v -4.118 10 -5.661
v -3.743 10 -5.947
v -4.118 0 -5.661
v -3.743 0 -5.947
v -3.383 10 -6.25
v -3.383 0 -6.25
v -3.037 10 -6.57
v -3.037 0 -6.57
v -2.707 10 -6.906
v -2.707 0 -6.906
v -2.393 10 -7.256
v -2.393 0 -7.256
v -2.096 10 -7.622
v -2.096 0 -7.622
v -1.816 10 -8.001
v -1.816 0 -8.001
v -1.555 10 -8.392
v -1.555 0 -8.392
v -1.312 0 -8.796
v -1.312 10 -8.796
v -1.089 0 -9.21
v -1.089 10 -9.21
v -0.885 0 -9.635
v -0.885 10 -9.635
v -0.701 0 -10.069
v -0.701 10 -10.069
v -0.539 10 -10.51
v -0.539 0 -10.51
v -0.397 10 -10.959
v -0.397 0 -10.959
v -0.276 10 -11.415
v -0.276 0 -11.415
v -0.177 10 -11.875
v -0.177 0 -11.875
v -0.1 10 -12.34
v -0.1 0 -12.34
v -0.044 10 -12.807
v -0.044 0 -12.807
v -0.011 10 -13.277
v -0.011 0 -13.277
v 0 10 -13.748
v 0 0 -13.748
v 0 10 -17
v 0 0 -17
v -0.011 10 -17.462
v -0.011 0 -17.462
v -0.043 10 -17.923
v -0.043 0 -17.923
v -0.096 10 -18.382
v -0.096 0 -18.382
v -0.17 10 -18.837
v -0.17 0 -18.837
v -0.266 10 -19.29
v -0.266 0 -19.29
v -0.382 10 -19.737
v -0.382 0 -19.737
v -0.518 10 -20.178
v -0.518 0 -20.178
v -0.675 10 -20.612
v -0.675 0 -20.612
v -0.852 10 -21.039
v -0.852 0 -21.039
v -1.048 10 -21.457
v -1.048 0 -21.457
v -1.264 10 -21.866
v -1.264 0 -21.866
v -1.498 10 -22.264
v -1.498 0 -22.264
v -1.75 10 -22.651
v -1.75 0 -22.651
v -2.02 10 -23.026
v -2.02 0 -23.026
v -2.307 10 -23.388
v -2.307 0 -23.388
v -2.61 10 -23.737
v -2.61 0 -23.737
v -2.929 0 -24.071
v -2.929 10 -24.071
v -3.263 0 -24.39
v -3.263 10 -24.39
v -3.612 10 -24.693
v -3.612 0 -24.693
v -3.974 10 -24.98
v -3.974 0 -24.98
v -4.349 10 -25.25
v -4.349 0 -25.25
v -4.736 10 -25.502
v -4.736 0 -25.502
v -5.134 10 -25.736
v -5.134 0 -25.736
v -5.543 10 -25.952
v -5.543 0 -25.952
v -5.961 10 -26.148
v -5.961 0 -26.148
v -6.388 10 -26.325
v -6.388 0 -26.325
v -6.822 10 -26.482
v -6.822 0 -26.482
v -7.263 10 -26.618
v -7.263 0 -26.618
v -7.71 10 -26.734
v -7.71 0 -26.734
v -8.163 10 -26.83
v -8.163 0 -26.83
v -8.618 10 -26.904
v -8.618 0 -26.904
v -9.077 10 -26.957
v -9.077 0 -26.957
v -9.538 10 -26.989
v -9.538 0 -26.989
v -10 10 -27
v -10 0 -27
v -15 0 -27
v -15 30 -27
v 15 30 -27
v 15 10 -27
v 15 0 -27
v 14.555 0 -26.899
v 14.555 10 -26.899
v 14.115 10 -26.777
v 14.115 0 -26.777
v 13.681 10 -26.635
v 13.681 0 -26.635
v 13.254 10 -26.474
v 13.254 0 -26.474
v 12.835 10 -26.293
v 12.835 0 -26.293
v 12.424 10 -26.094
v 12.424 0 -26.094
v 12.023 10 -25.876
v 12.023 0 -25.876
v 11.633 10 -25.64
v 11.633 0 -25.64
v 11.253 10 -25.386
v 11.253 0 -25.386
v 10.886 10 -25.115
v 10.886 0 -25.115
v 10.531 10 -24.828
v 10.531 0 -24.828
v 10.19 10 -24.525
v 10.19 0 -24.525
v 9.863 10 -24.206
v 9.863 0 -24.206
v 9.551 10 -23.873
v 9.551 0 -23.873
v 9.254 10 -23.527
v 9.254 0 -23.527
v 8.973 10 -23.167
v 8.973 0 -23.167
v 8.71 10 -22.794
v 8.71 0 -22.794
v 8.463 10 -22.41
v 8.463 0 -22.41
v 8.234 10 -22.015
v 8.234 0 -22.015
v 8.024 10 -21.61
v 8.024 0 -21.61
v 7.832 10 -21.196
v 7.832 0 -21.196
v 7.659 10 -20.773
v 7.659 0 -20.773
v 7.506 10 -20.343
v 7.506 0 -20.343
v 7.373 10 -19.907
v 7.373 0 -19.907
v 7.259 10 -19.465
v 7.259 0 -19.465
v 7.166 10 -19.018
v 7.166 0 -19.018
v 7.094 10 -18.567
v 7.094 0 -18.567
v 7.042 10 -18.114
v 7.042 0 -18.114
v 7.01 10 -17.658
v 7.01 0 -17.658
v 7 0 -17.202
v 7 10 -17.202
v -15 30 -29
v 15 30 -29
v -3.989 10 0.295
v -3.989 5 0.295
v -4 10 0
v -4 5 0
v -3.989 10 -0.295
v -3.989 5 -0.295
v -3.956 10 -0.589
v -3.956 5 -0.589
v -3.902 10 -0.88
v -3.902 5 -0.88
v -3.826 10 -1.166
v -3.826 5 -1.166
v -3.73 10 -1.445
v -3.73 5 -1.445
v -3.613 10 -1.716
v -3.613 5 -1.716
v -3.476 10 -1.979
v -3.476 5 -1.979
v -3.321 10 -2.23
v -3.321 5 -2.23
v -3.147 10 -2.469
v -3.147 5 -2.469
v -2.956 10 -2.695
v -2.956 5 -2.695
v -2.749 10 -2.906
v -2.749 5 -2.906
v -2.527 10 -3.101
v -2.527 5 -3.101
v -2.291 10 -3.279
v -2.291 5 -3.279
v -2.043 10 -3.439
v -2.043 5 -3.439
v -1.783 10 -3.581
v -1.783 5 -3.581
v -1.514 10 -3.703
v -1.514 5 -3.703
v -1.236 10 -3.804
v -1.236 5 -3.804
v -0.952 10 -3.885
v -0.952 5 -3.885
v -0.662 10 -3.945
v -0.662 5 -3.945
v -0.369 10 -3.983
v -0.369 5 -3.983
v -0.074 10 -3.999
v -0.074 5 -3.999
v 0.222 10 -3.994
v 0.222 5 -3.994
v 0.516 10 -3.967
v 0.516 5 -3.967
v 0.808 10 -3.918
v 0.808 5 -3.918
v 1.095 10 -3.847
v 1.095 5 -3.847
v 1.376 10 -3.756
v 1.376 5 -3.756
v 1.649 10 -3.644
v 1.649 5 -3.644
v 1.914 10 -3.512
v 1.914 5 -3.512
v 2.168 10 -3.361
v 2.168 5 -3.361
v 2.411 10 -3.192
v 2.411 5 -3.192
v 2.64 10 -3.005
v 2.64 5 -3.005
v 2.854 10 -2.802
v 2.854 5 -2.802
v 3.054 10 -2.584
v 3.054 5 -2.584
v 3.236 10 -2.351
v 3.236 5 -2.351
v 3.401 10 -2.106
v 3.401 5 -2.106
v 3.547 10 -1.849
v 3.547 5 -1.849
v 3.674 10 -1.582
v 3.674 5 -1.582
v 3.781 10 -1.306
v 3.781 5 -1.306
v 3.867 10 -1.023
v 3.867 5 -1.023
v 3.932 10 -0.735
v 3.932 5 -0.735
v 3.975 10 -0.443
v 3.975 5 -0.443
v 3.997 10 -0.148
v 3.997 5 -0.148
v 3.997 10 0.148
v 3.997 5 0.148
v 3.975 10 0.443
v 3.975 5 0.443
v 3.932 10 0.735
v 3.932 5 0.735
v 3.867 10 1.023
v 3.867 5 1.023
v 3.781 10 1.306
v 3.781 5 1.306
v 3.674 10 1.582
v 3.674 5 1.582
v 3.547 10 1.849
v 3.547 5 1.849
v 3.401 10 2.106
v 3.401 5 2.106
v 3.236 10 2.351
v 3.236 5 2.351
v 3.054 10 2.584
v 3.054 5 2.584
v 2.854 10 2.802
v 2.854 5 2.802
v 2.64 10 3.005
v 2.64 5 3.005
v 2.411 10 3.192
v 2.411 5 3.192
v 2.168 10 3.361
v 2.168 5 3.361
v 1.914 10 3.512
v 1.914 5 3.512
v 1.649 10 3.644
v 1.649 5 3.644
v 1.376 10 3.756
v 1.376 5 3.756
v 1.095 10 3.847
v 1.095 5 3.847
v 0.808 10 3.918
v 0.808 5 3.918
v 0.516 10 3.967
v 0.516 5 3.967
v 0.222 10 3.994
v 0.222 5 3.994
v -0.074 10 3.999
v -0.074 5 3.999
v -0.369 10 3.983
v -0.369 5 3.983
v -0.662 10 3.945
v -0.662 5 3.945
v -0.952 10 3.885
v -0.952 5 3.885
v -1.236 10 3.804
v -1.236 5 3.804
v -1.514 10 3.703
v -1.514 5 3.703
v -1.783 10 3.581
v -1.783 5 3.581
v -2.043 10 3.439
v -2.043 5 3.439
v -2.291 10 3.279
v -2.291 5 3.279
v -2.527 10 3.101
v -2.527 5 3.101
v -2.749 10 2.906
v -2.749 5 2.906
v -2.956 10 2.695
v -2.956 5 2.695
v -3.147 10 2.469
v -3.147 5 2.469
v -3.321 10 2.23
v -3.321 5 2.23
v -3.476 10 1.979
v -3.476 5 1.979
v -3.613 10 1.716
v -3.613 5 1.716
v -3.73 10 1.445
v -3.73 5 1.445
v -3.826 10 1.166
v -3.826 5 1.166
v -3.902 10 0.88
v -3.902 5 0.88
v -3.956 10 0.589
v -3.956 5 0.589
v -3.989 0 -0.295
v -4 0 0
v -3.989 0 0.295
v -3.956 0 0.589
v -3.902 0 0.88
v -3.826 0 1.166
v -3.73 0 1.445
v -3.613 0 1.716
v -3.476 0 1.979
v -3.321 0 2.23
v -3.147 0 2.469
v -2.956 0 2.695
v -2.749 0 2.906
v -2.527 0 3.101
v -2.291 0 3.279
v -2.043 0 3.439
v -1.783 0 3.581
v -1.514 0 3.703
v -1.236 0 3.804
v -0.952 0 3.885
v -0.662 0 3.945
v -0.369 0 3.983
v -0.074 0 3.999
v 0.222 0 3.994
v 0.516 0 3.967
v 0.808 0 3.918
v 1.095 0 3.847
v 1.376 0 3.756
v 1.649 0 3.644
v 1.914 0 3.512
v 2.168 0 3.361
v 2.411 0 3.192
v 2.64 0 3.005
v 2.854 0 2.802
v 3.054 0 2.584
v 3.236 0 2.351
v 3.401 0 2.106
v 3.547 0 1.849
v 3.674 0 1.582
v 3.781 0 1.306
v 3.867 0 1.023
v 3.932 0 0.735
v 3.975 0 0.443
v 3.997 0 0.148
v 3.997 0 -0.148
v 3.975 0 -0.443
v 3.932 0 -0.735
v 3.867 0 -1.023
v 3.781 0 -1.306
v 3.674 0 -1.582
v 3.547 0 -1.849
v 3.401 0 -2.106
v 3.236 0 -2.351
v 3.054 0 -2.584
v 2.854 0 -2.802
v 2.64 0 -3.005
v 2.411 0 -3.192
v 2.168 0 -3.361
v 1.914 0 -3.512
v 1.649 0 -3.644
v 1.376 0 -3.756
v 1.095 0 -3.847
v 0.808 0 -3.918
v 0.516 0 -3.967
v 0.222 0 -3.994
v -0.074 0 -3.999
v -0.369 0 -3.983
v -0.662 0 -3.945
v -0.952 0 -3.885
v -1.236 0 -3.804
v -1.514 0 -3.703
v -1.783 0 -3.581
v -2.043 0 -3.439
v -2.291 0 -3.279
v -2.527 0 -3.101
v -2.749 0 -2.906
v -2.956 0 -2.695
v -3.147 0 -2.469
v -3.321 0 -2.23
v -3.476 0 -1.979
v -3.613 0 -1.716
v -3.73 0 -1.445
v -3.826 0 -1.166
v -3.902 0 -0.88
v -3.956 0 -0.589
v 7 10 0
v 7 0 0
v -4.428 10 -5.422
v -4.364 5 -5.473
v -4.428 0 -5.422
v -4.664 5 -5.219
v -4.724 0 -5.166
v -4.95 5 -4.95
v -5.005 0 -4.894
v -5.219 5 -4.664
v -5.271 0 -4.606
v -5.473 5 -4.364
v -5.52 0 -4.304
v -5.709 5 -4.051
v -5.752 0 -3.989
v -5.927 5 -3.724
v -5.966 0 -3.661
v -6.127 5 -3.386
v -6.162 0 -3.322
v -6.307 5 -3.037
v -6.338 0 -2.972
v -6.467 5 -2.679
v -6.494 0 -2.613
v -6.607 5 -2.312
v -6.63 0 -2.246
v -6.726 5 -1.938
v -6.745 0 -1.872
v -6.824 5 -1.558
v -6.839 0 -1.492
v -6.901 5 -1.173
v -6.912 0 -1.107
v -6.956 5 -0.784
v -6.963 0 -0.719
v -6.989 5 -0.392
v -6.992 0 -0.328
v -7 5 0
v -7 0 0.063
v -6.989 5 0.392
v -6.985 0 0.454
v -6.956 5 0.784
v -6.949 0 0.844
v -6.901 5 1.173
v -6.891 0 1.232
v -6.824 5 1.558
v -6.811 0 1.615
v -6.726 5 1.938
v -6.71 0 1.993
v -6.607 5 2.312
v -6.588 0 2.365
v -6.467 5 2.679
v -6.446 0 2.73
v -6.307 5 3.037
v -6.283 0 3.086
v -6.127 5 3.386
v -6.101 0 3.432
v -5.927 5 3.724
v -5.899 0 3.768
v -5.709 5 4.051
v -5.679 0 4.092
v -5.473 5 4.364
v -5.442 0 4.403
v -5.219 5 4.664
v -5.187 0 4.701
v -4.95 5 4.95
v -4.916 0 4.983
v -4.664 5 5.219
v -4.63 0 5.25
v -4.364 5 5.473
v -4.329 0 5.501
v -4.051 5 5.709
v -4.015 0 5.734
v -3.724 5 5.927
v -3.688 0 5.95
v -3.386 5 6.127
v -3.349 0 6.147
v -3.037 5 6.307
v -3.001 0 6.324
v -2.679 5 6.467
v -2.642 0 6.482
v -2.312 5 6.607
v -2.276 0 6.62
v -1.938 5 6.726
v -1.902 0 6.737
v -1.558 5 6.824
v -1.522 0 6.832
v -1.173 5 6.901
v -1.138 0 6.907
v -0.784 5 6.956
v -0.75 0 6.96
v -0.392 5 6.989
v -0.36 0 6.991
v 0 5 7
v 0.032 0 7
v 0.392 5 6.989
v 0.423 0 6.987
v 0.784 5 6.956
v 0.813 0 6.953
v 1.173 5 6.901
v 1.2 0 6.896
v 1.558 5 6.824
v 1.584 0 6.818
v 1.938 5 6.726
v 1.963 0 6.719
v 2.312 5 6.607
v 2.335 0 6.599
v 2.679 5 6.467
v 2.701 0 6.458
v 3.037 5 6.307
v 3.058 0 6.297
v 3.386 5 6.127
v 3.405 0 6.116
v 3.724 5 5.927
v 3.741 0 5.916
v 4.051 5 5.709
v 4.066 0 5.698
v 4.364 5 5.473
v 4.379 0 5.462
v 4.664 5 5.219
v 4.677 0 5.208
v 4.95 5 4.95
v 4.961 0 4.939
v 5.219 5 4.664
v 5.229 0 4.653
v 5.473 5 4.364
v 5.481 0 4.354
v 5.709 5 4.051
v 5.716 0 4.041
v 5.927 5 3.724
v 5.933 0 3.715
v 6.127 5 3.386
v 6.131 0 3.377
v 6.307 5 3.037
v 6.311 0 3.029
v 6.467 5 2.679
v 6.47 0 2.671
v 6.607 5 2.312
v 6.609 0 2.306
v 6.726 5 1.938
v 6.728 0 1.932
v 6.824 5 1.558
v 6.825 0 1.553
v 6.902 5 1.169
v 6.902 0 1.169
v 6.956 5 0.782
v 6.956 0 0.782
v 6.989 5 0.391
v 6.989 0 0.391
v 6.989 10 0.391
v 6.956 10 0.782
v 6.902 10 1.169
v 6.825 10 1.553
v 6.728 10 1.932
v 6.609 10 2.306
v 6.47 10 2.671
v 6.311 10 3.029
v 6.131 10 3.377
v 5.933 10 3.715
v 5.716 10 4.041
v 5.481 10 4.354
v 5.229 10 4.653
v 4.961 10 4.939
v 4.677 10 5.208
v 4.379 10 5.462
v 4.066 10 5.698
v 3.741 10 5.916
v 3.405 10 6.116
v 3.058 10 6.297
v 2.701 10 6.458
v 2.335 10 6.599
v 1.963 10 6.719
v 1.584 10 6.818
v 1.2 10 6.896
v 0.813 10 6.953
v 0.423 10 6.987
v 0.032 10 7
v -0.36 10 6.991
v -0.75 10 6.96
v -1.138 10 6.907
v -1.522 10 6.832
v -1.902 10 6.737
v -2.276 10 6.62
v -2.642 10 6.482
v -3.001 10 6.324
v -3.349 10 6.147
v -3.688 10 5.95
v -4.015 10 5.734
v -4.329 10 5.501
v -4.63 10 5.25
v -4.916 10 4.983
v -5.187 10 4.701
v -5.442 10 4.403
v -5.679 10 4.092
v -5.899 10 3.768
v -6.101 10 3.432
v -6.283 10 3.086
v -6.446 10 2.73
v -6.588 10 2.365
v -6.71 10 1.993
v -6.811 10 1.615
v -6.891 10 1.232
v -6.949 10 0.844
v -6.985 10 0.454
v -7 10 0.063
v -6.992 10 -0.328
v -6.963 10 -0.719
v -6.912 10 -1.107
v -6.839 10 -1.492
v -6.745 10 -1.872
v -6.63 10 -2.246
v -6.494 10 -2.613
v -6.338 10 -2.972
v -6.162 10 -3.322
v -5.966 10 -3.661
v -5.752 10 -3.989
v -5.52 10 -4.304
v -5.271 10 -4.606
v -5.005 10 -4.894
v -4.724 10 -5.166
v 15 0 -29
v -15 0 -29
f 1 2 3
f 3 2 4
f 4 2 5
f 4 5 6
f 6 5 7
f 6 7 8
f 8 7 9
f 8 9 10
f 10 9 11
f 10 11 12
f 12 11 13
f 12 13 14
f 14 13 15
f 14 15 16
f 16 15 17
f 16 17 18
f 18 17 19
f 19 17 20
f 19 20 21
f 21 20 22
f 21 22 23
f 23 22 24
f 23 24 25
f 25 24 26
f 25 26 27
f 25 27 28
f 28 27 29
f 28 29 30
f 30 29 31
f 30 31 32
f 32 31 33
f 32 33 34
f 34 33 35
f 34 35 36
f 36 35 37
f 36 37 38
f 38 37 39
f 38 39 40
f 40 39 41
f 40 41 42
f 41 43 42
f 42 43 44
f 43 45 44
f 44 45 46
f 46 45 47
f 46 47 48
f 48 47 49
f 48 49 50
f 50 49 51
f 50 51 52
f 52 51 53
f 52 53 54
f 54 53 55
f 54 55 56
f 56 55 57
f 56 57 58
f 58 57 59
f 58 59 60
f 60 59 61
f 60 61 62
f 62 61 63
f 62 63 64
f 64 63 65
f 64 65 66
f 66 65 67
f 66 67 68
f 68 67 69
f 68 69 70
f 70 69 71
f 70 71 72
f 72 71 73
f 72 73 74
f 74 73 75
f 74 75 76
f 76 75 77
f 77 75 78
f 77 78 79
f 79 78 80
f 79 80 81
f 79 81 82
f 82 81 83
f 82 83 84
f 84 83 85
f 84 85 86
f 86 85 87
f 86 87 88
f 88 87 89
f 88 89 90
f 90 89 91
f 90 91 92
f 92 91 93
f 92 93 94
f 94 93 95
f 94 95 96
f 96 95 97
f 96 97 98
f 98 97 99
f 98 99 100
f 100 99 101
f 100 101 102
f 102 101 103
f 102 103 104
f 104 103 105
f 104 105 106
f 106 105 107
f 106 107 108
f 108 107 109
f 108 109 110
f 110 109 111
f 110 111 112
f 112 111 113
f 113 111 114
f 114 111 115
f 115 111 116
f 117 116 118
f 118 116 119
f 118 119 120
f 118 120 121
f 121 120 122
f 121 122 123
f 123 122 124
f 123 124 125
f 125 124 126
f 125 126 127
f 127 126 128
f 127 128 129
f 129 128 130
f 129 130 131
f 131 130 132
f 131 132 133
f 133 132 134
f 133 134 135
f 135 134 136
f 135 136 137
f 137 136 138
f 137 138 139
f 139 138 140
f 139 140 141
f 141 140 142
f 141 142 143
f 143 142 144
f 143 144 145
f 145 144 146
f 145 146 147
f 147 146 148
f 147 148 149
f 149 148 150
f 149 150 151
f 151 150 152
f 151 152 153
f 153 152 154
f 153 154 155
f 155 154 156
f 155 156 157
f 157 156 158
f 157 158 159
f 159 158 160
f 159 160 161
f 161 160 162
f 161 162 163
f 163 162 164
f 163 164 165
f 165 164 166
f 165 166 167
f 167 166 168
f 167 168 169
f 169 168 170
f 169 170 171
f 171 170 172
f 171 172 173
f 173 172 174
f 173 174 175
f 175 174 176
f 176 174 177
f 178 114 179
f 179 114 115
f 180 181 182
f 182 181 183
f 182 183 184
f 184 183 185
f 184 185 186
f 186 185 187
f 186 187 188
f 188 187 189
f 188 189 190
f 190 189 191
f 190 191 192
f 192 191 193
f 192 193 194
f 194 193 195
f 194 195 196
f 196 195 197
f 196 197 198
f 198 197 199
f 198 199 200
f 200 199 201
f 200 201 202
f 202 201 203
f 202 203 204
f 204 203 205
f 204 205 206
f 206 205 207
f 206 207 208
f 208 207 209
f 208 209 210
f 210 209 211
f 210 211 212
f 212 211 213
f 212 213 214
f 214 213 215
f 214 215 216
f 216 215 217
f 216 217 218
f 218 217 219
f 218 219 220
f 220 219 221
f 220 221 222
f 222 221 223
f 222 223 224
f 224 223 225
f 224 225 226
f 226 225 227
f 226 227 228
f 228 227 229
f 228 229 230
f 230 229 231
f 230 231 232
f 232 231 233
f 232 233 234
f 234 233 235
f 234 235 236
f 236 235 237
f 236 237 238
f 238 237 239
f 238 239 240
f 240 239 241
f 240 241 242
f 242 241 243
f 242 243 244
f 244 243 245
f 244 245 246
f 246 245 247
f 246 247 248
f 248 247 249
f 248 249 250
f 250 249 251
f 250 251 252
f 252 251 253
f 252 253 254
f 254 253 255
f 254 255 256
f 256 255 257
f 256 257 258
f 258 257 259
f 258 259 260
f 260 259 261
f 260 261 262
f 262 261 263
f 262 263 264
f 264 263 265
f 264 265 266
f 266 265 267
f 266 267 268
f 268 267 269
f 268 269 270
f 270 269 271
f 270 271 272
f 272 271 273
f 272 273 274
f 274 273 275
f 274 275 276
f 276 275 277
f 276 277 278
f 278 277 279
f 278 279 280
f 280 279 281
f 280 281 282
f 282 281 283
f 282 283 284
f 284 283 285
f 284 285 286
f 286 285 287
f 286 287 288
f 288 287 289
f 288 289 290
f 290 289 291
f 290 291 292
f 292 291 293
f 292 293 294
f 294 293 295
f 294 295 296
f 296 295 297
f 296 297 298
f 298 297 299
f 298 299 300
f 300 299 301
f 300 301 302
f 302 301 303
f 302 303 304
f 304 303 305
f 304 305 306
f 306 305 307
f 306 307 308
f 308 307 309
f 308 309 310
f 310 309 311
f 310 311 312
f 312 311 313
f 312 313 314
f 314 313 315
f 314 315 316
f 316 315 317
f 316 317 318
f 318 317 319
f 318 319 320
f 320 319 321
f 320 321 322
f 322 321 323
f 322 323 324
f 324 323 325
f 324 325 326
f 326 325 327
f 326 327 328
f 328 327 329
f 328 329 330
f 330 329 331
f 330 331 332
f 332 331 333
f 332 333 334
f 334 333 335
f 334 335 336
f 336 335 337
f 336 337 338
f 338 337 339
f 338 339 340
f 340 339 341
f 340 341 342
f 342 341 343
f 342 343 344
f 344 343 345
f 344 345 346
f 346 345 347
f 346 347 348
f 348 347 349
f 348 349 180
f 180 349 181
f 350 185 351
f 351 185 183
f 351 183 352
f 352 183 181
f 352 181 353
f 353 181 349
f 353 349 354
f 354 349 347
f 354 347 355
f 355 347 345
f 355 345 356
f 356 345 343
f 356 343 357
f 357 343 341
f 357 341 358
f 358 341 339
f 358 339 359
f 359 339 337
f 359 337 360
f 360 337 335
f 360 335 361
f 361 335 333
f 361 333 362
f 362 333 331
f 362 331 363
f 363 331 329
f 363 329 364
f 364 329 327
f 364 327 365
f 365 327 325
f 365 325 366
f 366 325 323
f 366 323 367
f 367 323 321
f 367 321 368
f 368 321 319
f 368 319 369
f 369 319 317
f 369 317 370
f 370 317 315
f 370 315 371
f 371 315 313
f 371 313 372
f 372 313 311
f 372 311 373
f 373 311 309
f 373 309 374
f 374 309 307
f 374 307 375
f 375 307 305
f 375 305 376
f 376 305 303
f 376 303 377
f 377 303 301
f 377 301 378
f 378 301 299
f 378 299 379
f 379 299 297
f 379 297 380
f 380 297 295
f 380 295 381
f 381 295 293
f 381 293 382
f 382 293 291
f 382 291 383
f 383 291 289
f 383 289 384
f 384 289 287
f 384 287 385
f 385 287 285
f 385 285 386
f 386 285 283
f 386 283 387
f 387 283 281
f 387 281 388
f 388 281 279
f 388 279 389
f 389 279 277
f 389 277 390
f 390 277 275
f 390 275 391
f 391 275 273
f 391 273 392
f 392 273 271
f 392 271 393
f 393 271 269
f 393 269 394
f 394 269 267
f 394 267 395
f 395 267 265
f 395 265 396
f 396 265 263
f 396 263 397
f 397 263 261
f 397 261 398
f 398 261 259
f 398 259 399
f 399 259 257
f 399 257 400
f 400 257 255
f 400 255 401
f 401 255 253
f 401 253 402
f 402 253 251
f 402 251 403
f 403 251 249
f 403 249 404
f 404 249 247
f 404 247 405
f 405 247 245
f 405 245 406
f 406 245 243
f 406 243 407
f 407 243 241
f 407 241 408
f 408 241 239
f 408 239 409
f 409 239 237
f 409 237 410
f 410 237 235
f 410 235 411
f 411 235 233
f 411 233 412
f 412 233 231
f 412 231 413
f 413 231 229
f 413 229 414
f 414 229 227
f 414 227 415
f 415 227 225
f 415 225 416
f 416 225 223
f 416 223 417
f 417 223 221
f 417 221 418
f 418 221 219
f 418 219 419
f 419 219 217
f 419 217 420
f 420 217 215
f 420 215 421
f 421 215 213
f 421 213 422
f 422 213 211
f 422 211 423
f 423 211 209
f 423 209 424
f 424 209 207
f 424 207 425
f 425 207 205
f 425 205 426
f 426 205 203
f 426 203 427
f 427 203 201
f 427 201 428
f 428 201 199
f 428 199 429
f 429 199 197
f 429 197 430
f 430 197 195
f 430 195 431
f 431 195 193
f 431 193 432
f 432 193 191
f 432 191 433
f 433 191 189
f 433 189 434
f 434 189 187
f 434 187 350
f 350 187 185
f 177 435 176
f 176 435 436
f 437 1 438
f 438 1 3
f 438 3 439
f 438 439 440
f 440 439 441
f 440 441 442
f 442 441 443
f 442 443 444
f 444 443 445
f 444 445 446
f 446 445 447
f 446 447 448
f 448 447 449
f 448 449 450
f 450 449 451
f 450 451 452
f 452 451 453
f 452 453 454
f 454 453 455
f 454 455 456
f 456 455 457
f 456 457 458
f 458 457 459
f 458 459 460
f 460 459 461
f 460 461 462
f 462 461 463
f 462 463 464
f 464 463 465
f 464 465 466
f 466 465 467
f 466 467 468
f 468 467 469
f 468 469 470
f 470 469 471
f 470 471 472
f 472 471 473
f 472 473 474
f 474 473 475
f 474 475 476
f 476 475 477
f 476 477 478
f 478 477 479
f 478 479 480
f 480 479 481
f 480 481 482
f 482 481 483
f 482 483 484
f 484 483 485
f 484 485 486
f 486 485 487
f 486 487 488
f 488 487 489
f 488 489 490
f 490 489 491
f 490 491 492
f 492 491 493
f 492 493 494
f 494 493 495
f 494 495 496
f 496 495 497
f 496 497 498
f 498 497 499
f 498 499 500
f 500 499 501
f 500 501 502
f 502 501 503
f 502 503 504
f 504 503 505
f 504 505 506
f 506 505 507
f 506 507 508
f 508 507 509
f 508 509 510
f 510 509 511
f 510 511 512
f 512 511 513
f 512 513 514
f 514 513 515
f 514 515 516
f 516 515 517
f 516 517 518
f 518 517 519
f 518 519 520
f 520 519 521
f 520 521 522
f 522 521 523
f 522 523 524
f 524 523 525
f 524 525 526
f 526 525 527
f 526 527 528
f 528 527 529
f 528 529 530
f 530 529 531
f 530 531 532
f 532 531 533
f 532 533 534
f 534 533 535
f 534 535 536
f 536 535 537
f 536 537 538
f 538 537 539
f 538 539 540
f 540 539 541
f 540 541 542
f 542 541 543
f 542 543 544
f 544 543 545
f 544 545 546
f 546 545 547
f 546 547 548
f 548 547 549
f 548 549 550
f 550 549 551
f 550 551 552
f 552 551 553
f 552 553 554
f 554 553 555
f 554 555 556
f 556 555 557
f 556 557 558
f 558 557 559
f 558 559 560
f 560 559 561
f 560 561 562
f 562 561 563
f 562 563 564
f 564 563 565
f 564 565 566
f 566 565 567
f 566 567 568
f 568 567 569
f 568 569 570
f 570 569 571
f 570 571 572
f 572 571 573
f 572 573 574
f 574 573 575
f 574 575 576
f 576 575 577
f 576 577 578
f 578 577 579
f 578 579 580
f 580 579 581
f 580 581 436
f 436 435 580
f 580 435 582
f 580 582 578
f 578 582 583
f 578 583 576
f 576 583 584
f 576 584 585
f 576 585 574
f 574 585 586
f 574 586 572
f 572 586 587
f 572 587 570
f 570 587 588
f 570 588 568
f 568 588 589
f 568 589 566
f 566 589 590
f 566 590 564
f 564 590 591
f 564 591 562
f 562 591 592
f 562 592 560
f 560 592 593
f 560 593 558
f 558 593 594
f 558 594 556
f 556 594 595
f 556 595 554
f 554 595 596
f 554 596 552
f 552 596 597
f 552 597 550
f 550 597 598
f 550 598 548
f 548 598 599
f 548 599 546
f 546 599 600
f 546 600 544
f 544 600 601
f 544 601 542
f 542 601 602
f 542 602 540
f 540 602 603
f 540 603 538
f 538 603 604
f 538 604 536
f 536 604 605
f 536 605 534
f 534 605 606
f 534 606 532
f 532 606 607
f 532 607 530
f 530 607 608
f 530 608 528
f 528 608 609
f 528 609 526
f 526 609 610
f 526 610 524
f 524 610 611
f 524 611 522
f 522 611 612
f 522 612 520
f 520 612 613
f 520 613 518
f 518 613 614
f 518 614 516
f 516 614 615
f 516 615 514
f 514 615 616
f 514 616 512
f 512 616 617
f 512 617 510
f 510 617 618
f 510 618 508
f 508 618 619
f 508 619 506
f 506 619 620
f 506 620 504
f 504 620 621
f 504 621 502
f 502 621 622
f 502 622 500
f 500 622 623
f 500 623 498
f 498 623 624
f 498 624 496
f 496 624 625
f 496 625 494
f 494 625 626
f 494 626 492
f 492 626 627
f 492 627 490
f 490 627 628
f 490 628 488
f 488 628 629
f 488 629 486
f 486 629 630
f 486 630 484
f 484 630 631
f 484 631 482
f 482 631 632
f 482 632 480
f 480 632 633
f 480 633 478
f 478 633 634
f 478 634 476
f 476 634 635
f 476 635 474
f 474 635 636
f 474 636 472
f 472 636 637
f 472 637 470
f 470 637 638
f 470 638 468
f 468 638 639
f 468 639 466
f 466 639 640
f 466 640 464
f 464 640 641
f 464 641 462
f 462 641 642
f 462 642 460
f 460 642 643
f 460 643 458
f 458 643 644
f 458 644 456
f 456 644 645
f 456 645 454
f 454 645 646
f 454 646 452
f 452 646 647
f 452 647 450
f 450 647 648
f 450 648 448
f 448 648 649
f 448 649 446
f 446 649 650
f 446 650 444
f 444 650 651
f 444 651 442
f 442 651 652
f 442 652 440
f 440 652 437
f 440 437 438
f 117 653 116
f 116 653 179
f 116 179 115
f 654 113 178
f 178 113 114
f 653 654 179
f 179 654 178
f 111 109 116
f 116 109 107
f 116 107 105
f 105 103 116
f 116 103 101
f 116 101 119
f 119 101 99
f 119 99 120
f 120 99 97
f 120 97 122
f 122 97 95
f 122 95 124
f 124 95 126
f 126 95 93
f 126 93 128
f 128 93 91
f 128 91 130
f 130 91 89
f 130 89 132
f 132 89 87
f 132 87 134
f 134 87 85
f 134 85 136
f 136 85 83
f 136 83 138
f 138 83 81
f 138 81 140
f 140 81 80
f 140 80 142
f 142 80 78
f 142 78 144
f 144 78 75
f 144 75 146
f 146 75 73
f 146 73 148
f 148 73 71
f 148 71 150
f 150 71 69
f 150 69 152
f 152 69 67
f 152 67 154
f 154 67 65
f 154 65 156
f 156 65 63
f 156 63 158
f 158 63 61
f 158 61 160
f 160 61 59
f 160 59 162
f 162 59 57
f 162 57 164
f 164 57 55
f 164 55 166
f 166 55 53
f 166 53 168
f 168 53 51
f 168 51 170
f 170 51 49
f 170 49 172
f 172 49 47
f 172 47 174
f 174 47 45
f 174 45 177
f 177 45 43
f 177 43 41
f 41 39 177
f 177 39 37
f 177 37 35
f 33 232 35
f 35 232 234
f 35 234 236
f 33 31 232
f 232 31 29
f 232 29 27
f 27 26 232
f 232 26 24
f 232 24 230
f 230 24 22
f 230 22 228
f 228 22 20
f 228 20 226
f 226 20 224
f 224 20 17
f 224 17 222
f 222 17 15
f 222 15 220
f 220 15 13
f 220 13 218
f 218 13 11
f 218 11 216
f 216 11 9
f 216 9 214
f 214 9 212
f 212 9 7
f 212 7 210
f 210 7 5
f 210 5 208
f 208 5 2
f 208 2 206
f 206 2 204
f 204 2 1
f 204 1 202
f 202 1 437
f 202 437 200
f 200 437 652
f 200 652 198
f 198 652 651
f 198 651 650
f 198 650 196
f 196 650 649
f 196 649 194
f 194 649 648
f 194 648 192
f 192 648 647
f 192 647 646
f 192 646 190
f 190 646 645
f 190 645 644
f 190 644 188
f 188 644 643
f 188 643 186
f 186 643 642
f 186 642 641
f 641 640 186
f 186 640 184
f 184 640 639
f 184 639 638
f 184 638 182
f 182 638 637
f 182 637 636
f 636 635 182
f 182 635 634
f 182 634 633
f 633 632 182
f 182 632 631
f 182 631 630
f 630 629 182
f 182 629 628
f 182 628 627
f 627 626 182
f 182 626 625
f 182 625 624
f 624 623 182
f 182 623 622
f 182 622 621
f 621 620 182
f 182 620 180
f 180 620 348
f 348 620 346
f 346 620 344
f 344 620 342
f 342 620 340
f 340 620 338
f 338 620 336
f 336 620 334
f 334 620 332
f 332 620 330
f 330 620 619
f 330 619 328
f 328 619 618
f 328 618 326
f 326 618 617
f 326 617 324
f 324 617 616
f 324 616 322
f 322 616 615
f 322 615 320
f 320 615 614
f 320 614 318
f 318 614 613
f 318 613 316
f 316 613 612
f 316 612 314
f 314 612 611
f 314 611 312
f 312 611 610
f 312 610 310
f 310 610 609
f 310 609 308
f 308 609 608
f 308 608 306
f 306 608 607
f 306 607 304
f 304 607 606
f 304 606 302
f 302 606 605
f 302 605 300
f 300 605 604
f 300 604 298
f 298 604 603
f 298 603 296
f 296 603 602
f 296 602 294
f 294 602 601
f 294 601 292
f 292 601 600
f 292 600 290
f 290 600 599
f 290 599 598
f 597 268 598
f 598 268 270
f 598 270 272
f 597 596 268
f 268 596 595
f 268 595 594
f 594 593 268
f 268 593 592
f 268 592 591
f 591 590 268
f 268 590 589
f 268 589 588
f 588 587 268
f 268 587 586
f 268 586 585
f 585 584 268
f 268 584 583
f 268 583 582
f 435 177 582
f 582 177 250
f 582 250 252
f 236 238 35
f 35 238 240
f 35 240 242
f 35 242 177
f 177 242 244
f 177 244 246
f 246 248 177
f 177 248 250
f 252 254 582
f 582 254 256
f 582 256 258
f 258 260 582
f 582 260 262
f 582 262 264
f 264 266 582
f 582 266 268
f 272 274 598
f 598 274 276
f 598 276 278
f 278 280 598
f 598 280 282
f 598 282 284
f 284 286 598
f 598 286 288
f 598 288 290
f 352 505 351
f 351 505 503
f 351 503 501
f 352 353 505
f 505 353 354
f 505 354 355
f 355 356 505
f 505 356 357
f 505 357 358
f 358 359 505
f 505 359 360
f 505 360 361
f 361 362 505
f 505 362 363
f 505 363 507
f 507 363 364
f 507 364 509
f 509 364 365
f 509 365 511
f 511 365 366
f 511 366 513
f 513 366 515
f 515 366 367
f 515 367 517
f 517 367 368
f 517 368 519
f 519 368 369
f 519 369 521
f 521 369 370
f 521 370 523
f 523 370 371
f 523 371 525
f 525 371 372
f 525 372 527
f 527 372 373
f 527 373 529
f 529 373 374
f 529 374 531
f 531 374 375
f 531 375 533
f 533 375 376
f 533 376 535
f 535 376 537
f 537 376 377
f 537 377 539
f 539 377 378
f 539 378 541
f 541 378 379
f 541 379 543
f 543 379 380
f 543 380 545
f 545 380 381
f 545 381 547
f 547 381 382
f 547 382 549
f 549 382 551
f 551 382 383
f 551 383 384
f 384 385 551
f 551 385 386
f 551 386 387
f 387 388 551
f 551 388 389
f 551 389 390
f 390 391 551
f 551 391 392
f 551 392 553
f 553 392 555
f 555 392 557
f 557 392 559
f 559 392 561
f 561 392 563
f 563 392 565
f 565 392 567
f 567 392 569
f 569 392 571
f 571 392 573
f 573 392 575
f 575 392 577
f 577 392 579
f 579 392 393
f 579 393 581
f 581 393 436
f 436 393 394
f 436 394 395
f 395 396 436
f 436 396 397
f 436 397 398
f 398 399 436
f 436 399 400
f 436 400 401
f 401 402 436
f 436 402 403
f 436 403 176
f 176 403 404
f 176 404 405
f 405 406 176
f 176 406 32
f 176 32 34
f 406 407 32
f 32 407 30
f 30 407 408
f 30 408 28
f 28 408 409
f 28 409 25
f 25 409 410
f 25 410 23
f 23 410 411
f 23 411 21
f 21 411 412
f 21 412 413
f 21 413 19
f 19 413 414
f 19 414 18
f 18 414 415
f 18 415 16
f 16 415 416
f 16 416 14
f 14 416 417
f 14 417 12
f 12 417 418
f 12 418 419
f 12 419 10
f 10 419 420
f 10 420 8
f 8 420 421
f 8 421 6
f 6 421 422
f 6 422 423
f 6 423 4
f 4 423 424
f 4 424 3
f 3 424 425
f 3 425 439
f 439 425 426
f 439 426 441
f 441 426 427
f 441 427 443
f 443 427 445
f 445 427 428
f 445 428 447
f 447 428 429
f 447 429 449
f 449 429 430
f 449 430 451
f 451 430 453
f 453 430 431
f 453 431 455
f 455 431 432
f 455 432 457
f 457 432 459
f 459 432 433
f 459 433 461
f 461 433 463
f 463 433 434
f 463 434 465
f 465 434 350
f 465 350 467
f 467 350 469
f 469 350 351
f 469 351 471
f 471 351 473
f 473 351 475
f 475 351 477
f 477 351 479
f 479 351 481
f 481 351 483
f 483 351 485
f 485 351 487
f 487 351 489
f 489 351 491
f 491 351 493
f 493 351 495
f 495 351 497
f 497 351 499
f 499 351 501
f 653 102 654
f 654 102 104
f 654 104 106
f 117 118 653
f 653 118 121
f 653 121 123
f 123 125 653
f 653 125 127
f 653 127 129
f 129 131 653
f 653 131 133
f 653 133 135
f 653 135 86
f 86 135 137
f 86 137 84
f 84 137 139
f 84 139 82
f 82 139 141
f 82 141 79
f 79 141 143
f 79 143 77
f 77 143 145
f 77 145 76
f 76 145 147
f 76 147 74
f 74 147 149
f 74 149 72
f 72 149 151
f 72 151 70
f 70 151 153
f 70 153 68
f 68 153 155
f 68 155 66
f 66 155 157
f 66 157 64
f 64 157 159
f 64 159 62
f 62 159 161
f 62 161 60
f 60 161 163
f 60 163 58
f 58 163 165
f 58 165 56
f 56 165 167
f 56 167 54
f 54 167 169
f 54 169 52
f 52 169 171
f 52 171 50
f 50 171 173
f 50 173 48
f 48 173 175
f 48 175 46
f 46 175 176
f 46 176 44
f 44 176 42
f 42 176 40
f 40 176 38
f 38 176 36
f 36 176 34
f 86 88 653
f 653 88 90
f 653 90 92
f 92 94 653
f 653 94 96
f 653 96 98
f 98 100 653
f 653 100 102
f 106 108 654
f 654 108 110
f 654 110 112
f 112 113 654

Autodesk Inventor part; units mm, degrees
ref_plane "YZ Plane" through (0, 0, 0) normal (1, 0, 0) x (0, 1, 0)
ref_plane "XZ Plane" through (0, 0, 0) normal (0, 1, 0) x (-1, 0, 0)
ref_plane "XY Plane" through (0, 0, 0) normal (0, 0, 1) x (1, 0, 0)
sketch "Sketch1" plane through (0, 0, 0) normal (0, 1, 0) x (-1, 0, 0)
  circle A0 centre (0, 0) radius 4
  line L0 (0, 0) -> (0, -28) construction
  line L1 (-15, -29) -> (15, -29)
  line L2 (15, -29) -> (15, -27)
  line L3 (15, -27) -> (-15, -27)
  line L4 (-15, -27) -> (-15, -29)
  line L5 (-15, -29) -> (15, -27) construction
  line L6 (15, -29) -> (-15, -27) construction
  circle A1 centre (0, 0) radius 7
  line L7 (0, -7) -> (0, -27)
  line L8 (-7, 0) -> (-7, -27)
  dimension "d0" = 8
  dimension "d1" = 28
  dimension "d2" = 30
  dimension "d3" = 2
  dimension "d4" = 3
extrude "Extrusion1" add sketch "Sketch1" along normal blind 10
sketch "Sketch2" plane through (0, 10, 0) normal (0, 1, 0) x (1, 0, 0)
  line L0 (15, 29) -> (-15, 29) projected
  line L1 (7, 27) -> (15, 27) projected
  line L2 (-15, 29) -> (15, 29)
  line L3 (15, 29) -> (15, 27)
  line L4 (15, 27) -> (-15, 27)
  line L5 (-15, 27) -> (-15, 29)
  point P0 (0, 0)
extrude "Extrusion2" add sketch "Sketch2" along normal blind 20
fillet "Fillet1" radius 10 3 edges at (7, 5, -27) (0, 5, -27) (0, 5, -7)
properties part number "pivotholder"
